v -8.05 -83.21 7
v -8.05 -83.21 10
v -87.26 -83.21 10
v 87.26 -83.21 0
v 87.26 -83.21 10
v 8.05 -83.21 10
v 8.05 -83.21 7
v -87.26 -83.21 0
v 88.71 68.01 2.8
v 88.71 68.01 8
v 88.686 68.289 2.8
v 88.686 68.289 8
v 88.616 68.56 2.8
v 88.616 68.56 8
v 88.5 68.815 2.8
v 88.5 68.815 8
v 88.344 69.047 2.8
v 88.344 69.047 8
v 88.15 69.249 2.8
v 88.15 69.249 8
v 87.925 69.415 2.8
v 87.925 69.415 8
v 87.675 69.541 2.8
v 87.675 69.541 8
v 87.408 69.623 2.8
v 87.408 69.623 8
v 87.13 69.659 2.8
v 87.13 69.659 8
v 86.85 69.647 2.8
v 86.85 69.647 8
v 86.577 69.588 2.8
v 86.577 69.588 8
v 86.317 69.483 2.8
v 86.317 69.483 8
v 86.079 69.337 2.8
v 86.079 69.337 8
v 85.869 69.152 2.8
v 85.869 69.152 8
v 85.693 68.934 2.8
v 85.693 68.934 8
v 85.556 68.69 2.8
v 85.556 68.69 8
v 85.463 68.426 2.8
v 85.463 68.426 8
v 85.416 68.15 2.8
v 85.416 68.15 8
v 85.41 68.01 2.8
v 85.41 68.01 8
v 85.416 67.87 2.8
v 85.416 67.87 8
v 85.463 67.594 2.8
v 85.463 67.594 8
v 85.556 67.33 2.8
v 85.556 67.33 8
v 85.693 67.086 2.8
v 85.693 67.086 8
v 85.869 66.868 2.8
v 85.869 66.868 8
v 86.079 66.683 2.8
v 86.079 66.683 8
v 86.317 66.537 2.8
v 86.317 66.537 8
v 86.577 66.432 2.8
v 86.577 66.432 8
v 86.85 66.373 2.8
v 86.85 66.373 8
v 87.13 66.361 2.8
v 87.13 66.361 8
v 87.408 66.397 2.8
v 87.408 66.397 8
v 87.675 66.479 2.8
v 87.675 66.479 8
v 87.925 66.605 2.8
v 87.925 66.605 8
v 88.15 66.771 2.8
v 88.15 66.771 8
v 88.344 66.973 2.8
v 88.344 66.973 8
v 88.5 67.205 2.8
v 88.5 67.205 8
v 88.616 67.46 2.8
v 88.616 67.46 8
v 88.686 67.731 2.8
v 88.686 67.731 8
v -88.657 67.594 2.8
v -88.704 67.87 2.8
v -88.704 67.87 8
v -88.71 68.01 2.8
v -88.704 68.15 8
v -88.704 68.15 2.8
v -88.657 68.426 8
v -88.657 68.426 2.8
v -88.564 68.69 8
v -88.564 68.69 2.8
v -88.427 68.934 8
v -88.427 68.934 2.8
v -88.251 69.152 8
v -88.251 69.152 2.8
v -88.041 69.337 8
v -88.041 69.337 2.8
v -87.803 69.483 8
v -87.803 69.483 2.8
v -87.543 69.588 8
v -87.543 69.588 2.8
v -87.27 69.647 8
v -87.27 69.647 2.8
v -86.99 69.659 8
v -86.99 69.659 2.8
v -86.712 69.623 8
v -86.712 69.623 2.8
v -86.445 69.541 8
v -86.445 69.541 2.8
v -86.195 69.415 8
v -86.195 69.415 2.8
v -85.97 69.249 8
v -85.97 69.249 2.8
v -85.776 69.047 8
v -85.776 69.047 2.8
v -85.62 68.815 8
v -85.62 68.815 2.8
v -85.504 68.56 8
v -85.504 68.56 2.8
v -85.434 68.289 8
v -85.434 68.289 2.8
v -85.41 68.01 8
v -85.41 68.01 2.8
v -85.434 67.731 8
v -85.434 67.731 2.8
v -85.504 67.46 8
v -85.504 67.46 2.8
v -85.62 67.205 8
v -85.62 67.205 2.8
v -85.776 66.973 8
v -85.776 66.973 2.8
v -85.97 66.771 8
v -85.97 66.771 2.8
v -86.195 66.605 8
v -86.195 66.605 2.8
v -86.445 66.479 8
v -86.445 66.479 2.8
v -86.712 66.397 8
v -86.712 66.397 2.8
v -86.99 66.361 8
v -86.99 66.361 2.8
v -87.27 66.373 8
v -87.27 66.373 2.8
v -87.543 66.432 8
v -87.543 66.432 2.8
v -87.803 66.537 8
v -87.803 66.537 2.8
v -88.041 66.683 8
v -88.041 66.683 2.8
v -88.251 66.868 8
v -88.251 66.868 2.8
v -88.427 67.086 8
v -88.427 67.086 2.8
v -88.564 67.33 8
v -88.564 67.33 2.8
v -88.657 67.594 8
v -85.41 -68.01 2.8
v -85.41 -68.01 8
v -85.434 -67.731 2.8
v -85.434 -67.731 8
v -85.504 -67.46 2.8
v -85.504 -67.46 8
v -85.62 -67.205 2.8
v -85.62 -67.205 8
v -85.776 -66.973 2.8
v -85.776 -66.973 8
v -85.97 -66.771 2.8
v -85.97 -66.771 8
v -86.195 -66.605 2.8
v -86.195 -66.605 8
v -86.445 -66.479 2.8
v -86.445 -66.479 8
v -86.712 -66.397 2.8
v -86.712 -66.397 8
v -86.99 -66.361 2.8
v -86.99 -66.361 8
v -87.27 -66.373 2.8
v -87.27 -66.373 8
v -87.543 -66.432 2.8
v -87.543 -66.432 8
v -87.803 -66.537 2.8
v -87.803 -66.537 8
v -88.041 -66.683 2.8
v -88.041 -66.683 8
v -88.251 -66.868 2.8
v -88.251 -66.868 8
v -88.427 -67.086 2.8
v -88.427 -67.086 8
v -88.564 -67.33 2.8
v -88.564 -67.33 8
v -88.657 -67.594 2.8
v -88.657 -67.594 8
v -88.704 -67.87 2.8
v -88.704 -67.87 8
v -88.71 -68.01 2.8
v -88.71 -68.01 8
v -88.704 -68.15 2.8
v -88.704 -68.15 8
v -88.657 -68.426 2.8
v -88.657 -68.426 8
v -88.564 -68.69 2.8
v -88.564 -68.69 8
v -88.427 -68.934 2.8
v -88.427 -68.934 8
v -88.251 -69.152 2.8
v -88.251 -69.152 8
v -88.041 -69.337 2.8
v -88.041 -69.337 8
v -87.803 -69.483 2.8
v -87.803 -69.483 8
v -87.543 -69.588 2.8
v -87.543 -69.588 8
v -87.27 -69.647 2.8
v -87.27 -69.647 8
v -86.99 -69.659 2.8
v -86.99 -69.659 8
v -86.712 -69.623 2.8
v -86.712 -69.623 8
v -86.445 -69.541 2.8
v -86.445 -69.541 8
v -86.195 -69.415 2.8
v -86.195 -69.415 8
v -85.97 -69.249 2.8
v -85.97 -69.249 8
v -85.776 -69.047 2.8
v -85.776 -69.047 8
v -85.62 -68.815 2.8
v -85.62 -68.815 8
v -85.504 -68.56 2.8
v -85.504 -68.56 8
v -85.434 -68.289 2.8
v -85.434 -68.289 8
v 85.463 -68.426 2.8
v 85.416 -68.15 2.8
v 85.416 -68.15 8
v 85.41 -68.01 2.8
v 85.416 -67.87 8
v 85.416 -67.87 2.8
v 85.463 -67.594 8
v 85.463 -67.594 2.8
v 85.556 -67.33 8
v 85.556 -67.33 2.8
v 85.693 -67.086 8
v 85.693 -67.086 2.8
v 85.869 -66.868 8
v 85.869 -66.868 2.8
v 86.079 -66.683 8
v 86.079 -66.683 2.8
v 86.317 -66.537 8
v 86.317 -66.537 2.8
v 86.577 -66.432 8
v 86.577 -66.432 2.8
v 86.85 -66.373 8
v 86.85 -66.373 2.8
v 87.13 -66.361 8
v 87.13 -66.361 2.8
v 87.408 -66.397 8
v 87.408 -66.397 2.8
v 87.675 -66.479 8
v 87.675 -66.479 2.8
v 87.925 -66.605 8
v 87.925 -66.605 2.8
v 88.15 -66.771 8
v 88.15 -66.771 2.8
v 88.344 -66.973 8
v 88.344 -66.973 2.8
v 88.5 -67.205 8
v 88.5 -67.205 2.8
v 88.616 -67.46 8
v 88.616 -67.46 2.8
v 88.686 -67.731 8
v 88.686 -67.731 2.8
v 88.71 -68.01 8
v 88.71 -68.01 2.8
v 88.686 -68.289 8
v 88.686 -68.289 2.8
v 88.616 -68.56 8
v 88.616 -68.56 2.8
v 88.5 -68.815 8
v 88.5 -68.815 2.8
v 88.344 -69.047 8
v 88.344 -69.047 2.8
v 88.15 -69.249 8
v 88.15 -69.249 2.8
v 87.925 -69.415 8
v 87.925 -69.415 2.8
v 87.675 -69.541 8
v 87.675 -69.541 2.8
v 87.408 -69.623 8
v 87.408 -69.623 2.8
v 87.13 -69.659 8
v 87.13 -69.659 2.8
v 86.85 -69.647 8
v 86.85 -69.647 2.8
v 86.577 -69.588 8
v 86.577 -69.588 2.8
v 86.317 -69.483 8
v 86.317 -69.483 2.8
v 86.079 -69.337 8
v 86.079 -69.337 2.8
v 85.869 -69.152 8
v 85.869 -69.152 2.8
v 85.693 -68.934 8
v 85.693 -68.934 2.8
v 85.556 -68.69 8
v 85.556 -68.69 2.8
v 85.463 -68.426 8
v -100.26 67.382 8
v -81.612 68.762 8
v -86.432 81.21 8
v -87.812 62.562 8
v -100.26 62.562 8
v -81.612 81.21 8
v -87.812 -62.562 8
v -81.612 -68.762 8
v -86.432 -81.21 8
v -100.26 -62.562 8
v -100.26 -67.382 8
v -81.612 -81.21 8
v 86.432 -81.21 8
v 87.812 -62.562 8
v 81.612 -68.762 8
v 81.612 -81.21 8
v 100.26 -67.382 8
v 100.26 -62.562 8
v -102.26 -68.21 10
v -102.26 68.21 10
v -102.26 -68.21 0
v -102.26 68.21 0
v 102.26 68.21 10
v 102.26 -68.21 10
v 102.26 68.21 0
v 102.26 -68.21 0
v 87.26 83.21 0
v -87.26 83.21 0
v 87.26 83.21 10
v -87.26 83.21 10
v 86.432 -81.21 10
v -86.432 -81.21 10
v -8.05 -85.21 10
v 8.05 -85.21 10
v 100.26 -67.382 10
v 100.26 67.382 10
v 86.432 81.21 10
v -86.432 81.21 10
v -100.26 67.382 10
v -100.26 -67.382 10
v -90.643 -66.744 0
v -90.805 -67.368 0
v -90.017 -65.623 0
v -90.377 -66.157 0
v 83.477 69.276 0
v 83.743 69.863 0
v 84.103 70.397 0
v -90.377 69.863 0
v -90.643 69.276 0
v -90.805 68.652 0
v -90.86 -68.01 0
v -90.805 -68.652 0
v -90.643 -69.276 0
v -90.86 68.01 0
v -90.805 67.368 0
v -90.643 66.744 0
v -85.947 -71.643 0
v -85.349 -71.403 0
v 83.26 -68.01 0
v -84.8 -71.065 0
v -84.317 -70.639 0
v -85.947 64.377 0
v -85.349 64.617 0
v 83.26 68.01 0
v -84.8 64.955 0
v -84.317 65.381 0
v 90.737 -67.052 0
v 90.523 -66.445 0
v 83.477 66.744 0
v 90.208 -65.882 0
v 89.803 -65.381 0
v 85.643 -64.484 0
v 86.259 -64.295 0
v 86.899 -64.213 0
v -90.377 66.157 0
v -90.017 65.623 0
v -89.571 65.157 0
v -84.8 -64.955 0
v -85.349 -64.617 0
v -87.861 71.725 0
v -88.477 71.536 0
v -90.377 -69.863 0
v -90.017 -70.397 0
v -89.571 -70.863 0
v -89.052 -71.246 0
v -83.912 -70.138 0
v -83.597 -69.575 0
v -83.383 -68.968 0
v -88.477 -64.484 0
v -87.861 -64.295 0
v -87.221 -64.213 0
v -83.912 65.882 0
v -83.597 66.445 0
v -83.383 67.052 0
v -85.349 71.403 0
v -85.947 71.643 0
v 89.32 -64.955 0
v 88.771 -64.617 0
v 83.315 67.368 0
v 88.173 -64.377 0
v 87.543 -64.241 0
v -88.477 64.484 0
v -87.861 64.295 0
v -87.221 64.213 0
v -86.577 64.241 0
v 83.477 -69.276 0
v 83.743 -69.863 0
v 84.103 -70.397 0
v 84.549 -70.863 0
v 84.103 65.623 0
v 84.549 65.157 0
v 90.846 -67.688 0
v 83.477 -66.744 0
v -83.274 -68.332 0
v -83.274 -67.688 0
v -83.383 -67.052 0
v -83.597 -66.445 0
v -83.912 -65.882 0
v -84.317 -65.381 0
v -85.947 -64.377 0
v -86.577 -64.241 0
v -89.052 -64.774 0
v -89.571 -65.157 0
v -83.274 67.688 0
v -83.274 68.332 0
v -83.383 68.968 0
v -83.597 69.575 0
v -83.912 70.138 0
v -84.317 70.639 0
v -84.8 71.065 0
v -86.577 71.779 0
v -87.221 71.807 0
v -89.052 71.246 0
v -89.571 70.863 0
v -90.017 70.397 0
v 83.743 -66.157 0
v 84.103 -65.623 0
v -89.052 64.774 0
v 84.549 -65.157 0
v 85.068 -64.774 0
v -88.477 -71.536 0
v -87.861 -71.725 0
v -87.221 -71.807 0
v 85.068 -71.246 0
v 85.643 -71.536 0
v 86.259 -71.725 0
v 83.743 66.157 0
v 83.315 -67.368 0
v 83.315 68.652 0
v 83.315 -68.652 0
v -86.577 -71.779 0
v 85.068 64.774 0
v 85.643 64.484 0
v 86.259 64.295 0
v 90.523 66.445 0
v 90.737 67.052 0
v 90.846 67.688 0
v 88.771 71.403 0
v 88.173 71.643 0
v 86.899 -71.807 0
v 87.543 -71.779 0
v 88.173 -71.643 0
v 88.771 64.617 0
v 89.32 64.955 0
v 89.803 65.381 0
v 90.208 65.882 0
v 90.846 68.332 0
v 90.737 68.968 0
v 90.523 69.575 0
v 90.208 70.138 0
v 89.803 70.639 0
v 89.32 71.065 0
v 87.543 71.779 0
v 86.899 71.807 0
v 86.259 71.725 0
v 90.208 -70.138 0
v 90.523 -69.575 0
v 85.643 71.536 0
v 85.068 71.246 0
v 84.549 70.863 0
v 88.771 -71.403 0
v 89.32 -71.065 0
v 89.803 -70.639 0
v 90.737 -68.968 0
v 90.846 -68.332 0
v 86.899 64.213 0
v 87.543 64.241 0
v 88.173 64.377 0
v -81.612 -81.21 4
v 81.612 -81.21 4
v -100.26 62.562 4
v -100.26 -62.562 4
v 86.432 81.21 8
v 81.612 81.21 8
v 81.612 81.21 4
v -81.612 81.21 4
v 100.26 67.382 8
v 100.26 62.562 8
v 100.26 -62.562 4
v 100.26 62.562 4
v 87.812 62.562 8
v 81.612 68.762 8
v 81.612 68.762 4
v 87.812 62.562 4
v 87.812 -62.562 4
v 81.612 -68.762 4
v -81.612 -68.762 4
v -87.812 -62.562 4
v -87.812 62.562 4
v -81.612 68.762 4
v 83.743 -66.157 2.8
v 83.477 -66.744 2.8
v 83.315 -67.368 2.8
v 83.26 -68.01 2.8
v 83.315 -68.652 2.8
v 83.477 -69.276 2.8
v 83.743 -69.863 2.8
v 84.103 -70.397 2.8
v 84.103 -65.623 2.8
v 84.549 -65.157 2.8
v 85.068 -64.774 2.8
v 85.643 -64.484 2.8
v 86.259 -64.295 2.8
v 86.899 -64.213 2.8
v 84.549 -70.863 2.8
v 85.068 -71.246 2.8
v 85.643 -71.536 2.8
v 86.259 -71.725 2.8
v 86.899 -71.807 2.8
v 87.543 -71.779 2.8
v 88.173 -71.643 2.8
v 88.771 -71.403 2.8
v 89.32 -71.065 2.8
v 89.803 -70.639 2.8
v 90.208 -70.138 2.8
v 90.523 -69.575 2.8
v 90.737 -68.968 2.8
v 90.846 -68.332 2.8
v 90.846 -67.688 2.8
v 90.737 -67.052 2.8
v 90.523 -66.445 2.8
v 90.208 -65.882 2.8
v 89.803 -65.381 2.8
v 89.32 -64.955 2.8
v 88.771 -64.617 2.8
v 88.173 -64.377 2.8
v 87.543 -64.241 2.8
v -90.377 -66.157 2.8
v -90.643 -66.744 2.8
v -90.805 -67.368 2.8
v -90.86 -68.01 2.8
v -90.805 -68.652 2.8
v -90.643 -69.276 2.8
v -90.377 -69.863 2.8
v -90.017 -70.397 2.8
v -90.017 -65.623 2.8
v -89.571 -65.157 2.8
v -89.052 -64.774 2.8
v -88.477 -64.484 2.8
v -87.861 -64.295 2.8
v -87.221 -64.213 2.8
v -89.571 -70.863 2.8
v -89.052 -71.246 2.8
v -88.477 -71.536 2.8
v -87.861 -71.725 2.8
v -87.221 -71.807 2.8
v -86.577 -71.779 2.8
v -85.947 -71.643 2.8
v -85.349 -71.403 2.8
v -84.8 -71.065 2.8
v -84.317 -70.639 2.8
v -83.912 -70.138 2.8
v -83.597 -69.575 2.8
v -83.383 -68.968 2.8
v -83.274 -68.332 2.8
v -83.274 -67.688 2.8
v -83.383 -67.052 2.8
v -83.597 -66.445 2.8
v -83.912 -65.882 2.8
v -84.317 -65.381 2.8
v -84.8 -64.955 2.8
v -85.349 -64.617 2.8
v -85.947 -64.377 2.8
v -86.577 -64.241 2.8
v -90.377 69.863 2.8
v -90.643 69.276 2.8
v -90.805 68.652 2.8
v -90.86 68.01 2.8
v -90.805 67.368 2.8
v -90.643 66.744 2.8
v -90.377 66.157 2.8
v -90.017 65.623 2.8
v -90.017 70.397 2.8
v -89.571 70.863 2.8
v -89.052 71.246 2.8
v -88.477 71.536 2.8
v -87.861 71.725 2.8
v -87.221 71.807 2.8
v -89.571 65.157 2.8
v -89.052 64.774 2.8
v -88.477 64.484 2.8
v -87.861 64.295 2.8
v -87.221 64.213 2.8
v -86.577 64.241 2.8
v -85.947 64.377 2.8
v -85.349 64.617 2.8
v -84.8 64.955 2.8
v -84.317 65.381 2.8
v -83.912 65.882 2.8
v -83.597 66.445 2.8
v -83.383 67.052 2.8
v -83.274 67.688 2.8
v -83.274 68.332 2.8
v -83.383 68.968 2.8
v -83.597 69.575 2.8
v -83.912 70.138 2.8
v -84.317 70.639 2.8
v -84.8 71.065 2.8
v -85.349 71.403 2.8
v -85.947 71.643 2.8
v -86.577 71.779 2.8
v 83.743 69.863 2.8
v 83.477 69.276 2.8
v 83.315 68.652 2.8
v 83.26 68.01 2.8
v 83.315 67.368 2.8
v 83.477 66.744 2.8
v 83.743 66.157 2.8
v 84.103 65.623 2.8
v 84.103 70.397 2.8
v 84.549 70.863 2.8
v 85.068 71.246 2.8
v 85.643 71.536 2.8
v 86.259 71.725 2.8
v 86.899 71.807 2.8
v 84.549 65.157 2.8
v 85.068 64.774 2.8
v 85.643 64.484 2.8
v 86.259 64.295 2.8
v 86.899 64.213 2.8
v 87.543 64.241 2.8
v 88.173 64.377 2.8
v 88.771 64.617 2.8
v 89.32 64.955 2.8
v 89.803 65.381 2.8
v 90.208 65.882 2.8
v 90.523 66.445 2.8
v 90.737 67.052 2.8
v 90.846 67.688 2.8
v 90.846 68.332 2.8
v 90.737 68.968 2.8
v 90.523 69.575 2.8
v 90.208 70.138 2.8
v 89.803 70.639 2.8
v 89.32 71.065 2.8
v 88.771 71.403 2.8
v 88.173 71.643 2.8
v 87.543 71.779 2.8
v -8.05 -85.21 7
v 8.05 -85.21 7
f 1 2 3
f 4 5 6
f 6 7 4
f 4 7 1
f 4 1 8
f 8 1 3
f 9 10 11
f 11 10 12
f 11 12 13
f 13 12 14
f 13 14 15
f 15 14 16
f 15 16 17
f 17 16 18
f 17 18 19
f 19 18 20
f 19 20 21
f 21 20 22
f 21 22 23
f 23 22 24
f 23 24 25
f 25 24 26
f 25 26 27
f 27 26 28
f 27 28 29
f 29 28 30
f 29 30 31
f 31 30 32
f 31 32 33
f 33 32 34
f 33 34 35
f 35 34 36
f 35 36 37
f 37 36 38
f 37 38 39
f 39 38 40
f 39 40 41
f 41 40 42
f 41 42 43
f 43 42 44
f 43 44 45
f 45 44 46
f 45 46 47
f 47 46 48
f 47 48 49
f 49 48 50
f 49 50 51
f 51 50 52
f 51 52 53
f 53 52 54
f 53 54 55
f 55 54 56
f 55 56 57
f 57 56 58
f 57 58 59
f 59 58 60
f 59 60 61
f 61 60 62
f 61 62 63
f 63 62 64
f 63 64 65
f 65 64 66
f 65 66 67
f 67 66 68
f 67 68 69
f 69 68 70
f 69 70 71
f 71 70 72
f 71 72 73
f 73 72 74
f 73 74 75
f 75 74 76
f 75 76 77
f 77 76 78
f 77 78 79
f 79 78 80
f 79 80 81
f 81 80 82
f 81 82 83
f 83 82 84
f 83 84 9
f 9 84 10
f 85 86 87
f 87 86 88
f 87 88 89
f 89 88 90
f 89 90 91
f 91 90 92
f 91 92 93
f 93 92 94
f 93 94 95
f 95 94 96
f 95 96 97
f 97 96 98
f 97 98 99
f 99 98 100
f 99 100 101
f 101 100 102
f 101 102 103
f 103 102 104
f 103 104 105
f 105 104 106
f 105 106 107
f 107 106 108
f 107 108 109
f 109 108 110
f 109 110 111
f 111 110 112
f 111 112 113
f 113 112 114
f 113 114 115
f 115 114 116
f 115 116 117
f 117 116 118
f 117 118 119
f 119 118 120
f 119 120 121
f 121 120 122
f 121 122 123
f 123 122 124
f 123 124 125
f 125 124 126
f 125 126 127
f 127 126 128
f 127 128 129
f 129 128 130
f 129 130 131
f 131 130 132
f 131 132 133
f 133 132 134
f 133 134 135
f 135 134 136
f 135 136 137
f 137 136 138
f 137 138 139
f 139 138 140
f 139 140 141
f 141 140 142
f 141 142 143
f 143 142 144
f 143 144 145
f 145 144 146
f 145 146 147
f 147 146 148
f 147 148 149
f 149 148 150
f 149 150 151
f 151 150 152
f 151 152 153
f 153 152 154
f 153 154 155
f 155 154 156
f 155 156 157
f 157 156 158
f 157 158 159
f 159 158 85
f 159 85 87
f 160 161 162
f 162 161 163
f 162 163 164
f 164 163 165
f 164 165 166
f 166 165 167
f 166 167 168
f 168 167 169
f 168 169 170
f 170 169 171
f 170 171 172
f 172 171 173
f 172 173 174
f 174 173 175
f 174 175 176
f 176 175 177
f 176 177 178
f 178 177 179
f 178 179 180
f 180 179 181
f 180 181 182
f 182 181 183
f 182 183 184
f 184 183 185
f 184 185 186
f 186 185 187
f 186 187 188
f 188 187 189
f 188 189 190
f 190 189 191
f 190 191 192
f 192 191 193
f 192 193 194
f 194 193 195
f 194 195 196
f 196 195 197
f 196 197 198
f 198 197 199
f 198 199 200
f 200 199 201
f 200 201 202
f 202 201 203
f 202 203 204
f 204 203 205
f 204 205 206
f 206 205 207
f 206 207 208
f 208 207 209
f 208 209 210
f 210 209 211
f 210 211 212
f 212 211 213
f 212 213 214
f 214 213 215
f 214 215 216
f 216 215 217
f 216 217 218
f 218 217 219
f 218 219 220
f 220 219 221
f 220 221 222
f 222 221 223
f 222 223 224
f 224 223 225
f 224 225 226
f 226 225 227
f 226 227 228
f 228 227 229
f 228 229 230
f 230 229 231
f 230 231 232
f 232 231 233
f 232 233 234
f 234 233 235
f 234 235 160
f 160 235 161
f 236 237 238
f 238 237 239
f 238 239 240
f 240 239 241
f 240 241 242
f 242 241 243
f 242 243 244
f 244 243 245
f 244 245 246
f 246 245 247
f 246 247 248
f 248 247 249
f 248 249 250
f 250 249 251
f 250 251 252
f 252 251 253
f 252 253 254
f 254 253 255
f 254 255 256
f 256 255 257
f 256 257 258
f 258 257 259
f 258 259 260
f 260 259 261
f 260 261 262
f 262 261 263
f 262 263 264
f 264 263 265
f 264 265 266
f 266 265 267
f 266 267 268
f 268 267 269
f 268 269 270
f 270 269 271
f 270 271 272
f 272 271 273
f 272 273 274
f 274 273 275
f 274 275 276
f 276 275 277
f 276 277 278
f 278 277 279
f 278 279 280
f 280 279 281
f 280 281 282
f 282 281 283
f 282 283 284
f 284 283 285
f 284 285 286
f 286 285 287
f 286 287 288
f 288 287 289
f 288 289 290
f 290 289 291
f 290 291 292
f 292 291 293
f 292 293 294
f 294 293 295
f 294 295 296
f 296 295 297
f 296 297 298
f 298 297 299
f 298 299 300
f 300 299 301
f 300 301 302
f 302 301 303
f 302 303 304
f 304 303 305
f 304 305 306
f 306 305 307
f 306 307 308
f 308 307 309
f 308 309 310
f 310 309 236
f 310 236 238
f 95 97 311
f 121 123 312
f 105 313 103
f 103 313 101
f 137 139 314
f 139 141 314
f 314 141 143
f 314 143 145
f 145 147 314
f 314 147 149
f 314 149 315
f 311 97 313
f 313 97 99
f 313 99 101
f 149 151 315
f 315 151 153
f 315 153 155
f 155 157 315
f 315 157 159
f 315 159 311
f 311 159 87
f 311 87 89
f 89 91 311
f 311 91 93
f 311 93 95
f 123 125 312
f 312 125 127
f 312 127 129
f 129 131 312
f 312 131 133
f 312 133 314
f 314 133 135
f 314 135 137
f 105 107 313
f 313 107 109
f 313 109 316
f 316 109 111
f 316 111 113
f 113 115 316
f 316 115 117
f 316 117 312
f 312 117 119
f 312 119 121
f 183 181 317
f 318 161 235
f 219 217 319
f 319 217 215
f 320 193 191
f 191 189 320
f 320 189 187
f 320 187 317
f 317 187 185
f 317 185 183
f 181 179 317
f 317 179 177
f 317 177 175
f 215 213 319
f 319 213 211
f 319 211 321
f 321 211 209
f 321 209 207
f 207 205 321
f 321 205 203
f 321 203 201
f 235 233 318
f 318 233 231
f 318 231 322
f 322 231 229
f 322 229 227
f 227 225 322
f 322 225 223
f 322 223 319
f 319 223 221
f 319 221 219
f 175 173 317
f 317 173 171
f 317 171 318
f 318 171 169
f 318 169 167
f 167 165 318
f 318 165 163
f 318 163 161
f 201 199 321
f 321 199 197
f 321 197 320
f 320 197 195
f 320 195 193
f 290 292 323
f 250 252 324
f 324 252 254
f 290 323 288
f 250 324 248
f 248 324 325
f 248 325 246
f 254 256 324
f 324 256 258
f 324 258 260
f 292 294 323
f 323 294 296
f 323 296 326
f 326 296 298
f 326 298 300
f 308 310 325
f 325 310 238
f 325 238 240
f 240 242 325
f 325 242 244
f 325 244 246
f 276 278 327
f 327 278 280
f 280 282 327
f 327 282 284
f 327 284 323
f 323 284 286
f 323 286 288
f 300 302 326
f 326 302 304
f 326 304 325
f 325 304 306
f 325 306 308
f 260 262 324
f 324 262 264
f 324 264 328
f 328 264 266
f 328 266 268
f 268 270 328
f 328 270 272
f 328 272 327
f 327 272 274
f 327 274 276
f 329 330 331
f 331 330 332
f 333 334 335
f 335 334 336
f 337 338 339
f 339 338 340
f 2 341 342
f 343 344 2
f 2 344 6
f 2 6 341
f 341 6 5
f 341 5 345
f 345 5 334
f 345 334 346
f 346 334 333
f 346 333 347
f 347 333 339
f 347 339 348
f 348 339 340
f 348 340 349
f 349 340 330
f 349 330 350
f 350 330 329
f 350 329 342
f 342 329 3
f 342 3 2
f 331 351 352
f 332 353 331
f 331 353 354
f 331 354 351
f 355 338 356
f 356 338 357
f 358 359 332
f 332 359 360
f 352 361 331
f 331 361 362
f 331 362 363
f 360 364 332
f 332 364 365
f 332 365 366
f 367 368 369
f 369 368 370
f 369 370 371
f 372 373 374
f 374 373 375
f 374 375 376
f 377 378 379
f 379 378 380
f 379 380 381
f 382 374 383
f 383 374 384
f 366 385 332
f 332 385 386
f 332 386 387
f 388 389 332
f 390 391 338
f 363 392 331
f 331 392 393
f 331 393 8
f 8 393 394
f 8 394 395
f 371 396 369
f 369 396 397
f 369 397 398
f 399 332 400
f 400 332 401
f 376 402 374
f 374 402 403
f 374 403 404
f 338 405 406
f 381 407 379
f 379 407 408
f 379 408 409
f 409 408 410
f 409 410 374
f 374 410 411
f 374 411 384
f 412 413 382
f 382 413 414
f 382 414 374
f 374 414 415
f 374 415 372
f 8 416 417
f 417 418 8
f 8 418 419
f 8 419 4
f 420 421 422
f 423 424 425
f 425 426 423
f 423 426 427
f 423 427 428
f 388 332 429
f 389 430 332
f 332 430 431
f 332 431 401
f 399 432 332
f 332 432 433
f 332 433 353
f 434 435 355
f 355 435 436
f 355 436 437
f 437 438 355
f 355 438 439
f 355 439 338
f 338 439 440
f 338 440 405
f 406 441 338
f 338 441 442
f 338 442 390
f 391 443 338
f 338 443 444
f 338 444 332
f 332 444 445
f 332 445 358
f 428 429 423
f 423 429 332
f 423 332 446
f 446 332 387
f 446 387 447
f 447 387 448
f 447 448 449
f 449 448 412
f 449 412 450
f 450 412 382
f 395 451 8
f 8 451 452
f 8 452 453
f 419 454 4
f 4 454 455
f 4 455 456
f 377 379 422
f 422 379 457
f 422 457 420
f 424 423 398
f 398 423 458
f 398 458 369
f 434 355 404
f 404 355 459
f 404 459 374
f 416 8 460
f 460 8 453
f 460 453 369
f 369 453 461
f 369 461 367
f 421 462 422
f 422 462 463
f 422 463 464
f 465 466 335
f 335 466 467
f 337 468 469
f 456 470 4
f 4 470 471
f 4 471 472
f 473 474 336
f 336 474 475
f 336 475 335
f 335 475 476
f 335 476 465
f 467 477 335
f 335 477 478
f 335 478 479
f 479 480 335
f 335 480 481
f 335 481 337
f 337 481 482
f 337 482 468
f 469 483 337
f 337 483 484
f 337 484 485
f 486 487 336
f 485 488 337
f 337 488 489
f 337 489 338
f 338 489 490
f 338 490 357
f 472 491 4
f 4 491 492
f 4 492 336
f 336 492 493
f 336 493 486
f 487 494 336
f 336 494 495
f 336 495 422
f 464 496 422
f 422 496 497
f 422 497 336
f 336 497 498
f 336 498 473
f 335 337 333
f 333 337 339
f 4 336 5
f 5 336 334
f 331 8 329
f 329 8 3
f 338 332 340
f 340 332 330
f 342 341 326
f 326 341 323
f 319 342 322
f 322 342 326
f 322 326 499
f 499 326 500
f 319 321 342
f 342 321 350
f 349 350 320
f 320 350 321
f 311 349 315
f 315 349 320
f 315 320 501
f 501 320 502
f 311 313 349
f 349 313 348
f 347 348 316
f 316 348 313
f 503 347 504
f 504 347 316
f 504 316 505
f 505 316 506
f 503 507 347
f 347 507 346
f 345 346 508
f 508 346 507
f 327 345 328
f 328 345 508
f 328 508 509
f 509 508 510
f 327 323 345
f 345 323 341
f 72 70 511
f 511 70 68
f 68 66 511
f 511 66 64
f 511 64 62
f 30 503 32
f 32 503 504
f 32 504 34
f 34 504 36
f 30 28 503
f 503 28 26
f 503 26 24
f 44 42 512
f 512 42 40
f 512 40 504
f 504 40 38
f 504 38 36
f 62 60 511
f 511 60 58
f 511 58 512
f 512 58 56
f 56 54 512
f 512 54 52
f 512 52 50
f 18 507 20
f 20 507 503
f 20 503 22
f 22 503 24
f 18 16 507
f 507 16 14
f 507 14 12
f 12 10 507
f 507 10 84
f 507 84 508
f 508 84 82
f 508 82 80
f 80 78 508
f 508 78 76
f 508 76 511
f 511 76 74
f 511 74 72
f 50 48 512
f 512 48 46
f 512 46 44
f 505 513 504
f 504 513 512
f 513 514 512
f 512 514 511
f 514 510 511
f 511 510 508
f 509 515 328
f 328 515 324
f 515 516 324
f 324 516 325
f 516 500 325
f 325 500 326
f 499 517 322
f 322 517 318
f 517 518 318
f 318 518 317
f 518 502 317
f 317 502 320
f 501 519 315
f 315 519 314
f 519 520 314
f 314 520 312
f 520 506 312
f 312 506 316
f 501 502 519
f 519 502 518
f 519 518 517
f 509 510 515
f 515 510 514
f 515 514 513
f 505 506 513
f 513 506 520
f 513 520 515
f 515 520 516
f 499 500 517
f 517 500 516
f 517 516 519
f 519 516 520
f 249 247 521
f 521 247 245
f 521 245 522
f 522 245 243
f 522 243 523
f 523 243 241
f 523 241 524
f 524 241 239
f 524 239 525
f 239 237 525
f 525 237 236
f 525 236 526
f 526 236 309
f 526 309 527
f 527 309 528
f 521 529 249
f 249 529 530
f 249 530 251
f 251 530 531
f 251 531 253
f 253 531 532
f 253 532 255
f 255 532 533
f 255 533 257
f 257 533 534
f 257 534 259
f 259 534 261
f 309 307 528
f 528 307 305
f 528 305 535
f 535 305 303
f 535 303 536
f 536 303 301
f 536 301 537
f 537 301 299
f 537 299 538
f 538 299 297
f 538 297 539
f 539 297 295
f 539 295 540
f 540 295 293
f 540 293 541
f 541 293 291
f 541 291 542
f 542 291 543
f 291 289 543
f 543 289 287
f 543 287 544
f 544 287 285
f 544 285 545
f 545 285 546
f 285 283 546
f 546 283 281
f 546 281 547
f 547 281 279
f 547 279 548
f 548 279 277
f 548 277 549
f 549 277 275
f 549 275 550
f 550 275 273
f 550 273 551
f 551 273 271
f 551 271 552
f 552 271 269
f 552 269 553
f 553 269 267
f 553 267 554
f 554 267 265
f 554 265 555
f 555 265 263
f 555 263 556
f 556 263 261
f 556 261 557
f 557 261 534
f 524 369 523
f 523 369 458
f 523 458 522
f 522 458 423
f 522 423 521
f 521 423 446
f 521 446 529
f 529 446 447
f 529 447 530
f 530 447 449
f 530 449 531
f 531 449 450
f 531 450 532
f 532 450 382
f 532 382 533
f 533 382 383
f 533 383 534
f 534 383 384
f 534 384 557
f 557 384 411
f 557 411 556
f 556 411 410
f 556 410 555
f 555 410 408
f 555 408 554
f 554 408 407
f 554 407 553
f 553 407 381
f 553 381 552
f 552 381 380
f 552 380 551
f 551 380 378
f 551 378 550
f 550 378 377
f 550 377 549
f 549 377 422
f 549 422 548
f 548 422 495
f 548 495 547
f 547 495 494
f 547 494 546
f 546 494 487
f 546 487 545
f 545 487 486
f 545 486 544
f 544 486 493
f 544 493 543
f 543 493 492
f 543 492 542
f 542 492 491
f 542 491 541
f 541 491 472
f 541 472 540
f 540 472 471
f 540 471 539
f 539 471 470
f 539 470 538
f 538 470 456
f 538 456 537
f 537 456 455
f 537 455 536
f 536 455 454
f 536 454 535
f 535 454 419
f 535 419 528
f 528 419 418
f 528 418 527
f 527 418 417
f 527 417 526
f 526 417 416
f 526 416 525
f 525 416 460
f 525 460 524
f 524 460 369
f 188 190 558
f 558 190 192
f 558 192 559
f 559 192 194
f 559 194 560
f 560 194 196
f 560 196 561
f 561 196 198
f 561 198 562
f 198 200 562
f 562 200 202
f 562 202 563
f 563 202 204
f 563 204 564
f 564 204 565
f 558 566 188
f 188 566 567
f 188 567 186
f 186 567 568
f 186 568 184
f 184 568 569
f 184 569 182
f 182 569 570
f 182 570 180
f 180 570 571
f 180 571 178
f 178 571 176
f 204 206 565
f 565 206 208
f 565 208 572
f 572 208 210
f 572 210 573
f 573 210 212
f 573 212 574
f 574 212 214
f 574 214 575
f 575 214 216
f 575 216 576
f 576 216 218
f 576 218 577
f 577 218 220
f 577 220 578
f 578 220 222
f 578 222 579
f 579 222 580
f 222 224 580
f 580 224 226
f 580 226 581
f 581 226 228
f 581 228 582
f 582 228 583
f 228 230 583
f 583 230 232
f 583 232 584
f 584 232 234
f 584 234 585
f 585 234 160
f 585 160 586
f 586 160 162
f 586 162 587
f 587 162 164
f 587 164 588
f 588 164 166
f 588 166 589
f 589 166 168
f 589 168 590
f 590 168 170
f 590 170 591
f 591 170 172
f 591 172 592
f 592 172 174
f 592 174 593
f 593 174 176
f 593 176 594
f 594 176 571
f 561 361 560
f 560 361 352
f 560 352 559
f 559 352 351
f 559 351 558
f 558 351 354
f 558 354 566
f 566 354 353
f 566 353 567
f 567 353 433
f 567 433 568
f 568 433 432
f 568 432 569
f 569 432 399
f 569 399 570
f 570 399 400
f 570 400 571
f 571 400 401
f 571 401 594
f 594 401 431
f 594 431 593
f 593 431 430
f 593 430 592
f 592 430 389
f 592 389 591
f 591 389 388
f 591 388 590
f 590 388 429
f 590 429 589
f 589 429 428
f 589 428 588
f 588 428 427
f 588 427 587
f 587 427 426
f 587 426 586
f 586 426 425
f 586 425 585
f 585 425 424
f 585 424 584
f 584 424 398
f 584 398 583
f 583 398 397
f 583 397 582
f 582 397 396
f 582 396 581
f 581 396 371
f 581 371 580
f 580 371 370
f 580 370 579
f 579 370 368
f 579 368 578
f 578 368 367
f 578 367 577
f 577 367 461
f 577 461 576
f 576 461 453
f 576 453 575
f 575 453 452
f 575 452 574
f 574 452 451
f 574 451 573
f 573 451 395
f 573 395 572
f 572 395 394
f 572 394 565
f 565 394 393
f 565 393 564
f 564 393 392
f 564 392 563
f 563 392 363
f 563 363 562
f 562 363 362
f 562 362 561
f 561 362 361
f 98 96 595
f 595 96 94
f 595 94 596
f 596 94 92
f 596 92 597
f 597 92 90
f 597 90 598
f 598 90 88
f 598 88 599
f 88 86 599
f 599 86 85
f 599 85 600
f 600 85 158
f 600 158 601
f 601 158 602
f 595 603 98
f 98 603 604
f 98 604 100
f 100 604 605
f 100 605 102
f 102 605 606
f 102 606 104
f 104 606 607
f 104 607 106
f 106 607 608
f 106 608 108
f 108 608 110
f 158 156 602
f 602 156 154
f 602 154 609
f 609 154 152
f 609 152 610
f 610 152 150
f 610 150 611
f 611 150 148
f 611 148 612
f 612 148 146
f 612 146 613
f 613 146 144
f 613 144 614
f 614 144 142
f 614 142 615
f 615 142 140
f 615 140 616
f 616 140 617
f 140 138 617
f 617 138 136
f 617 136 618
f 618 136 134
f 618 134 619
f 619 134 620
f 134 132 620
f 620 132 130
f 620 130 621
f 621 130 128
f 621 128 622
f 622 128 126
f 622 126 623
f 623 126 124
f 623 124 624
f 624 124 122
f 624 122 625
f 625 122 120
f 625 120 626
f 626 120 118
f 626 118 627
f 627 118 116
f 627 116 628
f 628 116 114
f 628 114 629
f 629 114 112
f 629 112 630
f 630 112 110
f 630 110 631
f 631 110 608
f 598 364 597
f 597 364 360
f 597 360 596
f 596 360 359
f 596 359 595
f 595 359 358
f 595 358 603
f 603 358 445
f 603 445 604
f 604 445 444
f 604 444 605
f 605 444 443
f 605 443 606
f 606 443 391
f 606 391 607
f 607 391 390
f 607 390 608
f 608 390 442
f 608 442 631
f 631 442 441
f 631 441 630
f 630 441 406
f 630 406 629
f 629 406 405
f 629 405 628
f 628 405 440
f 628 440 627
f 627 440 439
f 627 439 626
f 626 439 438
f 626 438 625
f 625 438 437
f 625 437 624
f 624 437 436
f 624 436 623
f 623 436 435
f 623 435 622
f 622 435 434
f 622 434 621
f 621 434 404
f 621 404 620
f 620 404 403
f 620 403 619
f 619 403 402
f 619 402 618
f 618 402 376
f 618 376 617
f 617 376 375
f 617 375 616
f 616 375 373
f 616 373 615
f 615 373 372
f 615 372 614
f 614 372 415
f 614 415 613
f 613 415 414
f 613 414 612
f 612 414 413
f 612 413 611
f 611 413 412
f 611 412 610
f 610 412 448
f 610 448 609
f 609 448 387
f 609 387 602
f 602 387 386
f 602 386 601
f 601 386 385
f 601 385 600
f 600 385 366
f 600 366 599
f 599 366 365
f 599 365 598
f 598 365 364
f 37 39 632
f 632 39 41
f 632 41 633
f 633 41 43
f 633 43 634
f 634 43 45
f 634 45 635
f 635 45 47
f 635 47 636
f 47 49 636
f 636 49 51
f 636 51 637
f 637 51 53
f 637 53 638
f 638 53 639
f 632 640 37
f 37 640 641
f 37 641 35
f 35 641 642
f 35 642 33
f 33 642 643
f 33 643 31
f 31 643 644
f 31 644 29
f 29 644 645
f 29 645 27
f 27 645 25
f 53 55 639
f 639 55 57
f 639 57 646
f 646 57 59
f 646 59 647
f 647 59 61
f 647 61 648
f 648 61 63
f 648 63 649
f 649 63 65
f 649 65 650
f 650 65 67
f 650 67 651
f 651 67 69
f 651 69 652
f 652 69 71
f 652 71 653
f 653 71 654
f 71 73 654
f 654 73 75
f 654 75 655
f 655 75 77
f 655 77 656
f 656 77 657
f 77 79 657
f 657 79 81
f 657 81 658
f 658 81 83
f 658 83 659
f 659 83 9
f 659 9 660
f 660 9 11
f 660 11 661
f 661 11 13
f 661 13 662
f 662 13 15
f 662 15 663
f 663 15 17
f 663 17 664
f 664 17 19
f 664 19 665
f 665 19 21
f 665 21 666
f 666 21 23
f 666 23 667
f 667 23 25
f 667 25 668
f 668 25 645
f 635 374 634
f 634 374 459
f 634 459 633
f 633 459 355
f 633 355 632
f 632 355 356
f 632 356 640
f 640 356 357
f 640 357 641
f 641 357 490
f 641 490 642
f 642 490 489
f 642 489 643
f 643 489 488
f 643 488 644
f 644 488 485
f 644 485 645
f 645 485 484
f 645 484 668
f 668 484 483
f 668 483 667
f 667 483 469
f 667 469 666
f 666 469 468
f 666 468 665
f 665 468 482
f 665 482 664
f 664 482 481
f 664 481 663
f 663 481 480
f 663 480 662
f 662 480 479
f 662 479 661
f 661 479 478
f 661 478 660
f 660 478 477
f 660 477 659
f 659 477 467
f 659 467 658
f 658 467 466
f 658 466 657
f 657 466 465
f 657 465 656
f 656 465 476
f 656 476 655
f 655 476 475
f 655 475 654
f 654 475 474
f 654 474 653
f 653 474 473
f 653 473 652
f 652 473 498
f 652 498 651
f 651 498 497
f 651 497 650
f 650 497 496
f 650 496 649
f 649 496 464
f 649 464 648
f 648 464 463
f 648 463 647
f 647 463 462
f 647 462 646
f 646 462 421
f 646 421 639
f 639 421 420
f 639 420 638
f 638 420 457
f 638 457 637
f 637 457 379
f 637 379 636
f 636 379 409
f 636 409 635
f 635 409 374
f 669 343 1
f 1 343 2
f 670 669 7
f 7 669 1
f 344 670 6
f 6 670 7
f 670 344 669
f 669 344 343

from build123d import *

# Parameters (mm, degrees)
ESQUISSE1_W             = 204.52
ESQUISSE1_H             = 166.42
BOSS_EXTRU_1_DEPTH      = 10
CHANFREIN1_SIZE         = 15
ENL_V_MAT_EXTRU_1_DEPTH = 2
ENL_V_MAT_EXTRU_2_DEPTH = 4
ESQUISSE4_R             = 1.65
ENL_V_MAT_EXTRU_3_DEPTH = 9
ESQUISSE5_R             = 3.8
ENL_V_MAT_EXTRU_4_DEPTH = 2.8
ESQUISSE6_W             = 16.1
ESQUISSE6_H             = 3
BOSS_EXTRU_2_DEPTH      = 2


with BuildPart() as part:
    # Esquisse1 → Boss.-Extru.1 (new body)
    with BuildSketch(Plane.XY):
        Rectangle(ESQUISSE1_W, ESQUISSE1_H)
    extrude(amount=BOSS_EXTRU_1_DEPTH)

    # Chanfrein1
    chanfrein1_edges = [part.edges().sort_by_distance(p)[0] for p in [
        (-102.26, 83.21, 5),
        (102.26, 83.21, 5),
        (102.26, -83.21, 5),
        (-102.26, -83.21, 5),
    ]]
    chamfer(chanfrein1_edges, length=CHANFREIN1_SIZE)

    # Esquisse2 → Enlèv. mat.-Extru.1 (cut)
    with BuildSketch(Plane.XY.offset(10)):
        Polygon((86.431572875, -81.21), (100.26, -67.381572875), (100.26, 67.381572875), (86.431572875, 81.21), (-86.431572875, 81.21), (-100.26, 67.381572875), (-100.26, -67.381572875), (-86.431572875, -81.21), align=None)
    extrude(amount=-ENL_V_MAT_EXTRU_1_DEPTH, mode=Mode.SUBTRACT)

    # Esquisse3 → Enlèv. mat.-Extru.2 (cut)
    with BuildSketch(Plane.XY.offset(8)):
        Polygon((-81.611572875, 81.21), (-81.611572875, 68.762452403), (-87.812452403, 62.561572875), (-100.26, 62.561572875), (-100.26, -62.561572875), (-87.812452403, -62.561572875), (-81.611572875, -68.762452403), (-81.611572875, -81.21), (81.611572875, -81.21), (81.611572875, -68.762452403), (87.812452403, -62.561572875), (100.26, -62.561572875), (100.26, 62.561572875), (87.812452403, 62.561572875), (81.611572875, 68.762452403), (81.611572875, 81.21), align=None)
    extrude(amount=-ENL_V_MAT_EXTRU_2_DEPTH, mode=Mode.SUBTRACT)

    # Esquisse4 → Enlèv. mat.-Extru.3 (cut, through all)
    with BuildSketch(Plane.XY.offset(8)):
        with Locations((-87.06, 68.01)):
            Circle(ESQUISSE4_R)
        with Locations((-87.06, -68.01)):
            Circle(ESQUISSE4_R)
        with Locations((87.06, -68.01)):
            Circle(ESQUISSE4_R)
        with Locations((87.06, 68.01)):
            Circle(ESQUISSE4_R)
    extrude(amount=-ENL_V_MAT_EXTRU_3_DEPTH, mode=Mode.SUBTRACT)

    # Esquisse5 → Enlèv. mat.-Extru.4 (cut)
    with BuildSketch(Plane(origin=(0, 0, 0), x_dir=(-1, 0, 0), z_dir=(0, 0, -1))):
        with Locations((87.06, 68.01)):
            Circle(ESQUISSE5_R)
        with Locations((-87.06, 68.01)):
            Circle(ESQUISSE5_R)
        with Locations((-87.06, -68.01)):
            Circle(ESQUISSE5_R)
        with Locations((87.06, -68.01)):
            Circle(ESQUISSE5_R)
    extrude(amount=-ENL_V_MAT_EXTRU_4_DEPTH, mode=Mode.SUBTRACT)

    # Esquisse6 → Boss.-Extru.2 (add)
    with BuildSketch(Plane.XZ.offset(83.21)):
        with Locations((0, 8.5)):
            Rectangle(ESQUISSE6_W, ESQUISSE6_H)
    extrude(amount=BOSS_EXTRU_2_DEPTH)


solid = part.part
